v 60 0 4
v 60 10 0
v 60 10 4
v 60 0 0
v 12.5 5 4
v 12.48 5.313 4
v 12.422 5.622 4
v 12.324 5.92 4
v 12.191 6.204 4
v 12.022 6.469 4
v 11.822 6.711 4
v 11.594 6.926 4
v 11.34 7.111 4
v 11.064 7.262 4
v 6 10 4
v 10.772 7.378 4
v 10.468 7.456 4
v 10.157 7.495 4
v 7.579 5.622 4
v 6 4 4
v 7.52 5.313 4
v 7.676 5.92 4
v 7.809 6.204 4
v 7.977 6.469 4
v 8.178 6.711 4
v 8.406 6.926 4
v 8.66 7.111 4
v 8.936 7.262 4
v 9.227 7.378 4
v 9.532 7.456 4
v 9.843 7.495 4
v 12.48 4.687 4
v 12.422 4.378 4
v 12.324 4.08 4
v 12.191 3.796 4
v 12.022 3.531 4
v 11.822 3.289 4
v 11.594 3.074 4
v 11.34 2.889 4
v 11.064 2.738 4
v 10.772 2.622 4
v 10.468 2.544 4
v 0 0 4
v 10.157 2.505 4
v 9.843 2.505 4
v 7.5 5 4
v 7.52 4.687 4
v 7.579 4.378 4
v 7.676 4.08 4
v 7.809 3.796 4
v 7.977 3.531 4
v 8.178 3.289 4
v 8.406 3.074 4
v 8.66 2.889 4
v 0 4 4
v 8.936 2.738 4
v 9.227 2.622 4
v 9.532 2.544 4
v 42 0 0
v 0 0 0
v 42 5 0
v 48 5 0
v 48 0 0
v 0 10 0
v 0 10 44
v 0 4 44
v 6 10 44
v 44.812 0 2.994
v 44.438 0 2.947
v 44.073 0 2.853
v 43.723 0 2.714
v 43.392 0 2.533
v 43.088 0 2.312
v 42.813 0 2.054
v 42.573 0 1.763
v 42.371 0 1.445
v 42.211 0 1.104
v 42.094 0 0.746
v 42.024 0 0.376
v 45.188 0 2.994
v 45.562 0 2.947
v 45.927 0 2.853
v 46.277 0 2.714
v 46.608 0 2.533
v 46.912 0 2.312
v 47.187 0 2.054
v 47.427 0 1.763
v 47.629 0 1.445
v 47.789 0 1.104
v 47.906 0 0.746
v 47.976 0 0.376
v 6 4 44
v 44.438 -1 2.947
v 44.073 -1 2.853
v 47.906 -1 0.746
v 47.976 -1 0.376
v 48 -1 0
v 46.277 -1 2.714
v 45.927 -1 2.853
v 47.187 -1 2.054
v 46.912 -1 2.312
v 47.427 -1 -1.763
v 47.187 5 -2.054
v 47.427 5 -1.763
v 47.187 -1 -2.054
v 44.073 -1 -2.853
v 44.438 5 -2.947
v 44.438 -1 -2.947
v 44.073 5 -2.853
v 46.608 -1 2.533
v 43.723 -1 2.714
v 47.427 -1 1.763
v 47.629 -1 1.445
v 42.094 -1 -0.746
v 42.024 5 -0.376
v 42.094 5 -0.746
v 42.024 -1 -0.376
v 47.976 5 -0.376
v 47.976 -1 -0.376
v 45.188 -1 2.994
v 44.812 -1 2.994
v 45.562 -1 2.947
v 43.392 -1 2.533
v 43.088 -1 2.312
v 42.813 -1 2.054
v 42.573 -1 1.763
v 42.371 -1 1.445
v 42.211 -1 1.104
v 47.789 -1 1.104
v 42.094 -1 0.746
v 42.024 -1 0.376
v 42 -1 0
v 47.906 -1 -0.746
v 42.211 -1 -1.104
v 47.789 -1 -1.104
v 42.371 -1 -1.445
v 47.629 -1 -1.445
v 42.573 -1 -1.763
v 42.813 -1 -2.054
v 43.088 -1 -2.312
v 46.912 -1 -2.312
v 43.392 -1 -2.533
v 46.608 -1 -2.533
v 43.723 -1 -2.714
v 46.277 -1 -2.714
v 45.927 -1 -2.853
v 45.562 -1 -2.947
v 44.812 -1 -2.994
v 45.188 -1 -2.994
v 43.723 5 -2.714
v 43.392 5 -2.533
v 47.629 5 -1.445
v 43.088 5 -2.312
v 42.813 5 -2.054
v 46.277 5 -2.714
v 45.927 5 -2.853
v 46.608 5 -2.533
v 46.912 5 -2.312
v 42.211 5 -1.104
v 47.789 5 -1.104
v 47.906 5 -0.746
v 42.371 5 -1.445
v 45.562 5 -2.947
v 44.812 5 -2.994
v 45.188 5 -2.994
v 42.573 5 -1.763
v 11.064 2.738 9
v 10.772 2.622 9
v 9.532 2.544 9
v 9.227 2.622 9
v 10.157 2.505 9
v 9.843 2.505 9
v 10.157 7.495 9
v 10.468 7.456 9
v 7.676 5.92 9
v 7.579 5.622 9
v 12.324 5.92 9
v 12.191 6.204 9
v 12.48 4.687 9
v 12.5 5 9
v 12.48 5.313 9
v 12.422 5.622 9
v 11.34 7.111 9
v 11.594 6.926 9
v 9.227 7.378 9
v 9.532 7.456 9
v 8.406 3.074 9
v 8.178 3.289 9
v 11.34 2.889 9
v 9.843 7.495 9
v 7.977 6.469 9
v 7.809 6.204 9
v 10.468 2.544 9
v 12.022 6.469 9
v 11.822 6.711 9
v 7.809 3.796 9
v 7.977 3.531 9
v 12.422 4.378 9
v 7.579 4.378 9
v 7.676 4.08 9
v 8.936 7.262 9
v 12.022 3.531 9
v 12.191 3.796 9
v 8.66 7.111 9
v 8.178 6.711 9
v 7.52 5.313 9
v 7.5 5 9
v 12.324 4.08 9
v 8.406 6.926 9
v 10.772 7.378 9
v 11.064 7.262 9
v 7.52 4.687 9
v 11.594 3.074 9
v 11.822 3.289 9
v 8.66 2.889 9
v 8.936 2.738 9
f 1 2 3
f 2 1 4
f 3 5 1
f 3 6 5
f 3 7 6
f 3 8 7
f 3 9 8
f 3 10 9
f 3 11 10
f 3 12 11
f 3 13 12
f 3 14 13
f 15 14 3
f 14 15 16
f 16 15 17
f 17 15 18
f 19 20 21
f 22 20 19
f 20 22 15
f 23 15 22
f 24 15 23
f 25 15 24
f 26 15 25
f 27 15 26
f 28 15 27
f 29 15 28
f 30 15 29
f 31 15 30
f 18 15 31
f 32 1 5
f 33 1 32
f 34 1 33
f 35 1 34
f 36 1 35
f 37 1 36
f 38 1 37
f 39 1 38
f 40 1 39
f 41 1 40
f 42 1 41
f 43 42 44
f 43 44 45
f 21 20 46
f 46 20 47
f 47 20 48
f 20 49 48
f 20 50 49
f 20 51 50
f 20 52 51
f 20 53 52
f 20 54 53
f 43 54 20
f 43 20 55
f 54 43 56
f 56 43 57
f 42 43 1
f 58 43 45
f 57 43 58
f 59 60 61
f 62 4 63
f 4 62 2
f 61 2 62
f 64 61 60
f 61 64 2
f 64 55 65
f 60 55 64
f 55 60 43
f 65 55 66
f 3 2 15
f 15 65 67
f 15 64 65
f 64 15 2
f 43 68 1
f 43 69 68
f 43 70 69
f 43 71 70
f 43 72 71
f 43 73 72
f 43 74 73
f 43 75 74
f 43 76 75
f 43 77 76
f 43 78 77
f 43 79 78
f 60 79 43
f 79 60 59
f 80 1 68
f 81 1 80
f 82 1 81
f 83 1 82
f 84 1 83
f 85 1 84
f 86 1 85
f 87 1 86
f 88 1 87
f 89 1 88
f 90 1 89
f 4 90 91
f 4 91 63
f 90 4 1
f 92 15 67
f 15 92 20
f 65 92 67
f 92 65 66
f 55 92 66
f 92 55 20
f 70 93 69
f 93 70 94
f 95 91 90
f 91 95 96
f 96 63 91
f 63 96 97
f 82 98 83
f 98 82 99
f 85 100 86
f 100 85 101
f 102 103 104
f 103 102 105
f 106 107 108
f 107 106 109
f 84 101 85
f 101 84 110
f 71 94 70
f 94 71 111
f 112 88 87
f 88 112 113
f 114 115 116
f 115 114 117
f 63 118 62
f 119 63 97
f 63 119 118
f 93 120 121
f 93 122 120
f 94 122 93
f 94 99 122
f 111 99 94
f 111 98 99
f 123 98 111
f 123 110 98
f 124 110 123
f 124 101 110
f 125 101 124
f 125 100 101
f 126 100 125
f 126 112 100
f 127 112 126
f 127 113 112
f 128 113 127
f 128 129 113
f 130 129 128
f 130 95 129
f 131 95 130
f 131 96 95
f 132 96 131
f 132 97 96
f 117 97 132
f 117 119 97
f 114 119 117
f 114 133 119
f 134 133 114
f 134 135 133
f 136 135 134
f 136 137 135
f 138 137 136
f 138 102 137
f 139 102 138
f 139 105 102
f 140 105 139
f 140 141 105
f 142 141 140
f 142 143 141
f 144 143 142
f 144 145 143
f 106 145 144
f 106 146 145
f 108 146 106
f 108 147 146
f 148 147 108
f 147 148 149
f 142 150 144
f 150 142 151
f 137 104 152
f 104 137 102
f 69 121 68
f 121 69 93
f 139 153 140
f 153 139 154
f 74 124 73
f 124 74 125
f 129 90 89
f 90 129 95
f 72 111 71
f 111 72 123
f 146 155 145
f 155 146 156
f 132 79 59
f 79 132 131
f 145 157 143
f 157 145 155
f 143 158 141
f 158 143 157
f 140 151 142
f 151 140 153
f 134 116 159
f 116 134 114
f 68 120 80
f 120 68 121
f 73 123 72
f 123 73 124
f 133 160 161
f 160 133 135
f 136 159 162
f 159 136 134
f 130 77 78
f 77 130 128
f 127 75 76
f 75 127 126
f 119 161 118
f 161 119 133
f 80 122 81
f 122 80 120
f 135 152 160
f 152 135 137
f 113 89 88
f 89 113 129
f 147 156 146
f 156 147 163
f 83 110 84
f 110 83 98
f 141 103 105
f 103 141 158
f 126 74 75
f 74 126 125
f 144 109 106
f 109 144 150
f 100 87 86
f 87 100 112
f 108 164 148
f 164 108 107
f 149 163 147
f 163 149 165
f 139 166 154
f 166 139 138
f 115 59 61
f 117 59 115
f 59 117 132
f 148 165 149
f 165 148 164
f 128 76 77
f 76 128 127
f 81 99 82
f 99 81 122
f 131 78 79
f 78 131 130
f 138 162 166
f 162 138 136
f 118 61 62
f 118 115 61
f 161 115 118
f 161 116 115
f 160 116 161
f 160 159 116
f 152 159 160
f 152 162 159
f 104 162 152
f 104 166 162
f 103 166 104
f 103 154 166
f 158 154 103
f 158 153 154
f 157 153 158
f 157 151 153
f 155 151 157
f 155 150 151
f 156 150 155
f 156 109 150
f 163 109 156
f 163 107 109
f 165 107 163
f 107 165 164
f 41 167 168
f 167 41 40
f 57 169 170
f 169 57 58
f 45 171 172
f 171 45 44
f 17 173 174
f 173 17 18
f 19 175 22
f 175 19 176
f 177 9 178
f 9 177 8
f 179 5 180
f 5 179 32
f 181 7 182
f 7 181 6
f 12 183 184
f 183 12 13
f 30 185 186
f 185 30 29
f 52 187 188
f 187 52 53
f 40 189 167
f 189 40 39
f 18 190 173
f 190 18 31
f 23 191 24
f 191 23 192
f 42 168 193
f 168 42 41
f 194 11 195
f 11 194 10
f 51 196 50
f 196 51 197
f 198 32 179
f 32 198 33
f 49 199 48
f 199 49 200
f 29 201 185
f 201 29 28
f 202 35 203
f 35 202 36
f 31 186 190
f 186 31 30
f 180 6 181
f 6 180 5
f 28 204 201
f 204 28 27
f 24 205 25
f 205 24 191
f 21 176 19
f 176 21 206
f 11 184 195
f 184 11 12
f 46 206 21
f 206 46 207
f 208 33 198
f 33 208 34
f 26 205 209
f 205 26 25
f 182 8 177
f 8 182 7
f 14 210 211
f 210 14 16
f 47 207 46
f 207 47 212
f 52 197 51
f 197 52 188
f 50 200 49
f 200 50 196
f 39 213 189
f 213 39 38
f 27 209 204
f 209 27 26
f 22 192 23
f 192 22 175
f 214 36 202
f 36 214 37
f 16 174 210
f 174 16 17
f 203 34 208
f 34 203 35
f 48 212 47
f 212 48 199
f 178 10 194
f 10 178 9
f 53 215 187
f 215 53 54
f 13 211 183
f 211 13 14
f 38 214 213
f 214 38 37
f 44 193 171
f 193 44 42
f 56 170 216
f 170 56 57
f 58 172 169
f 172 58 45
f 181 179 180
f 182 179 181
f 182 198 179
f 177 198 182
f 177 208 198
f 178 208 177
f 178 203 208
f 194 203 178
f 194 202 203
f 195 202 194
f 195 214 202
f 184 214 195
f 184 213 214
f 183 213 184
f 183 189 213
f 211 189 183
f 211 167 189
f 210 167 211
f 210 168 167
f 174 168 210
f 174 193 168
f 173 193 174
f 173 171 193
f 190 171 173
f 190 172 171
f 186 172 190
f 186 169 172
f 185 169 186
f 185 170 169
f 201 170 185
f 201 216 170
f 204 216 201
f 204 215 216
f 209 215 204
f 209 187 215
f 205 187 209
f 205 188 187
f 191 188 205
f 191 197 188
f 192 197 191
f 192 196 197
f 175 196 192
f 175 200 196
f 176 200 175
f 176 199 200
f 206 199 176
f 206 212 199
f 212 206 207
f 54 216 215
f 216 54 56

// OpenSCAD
// Parameters
base_length = 60;
base_width = 10;
base_height = 4;

arm_height = 40;
arm_thickness = 6;

pivot_radius = 3;
pivot_height = 6;

stop_radius = 2.5;
stop_height = 5;

// Main base
module base() {
    cube([base_length, base_width, base_height]);
}

// Vertical arm
module vertical_arm() {
    translate([0, base_width - arm_thickness, base_height])
        cube([arm_thickness, arm_thickness, arm_height]);
}

// Downward pivot pin
module pivot_pin() {
    translate([base_length - 15, base_width / 2, 0])
        rotate([90, 0, 0])
            cylinder(h = pivot_height, r = pivot_radius, $fn = 50);
}

// Upward stop pin
module stop_pin() {
    translate([10, base_width / 2, base_height])
        cylinder(h = stop_height, r = stop_radius, $fn = 50);
}

// Full lever latch body
module lever_latch_body() {
    base();
    vertical_arm();
    pivot_pin();
    stop_pin();
}

// Render the model
lever_latch_body();
